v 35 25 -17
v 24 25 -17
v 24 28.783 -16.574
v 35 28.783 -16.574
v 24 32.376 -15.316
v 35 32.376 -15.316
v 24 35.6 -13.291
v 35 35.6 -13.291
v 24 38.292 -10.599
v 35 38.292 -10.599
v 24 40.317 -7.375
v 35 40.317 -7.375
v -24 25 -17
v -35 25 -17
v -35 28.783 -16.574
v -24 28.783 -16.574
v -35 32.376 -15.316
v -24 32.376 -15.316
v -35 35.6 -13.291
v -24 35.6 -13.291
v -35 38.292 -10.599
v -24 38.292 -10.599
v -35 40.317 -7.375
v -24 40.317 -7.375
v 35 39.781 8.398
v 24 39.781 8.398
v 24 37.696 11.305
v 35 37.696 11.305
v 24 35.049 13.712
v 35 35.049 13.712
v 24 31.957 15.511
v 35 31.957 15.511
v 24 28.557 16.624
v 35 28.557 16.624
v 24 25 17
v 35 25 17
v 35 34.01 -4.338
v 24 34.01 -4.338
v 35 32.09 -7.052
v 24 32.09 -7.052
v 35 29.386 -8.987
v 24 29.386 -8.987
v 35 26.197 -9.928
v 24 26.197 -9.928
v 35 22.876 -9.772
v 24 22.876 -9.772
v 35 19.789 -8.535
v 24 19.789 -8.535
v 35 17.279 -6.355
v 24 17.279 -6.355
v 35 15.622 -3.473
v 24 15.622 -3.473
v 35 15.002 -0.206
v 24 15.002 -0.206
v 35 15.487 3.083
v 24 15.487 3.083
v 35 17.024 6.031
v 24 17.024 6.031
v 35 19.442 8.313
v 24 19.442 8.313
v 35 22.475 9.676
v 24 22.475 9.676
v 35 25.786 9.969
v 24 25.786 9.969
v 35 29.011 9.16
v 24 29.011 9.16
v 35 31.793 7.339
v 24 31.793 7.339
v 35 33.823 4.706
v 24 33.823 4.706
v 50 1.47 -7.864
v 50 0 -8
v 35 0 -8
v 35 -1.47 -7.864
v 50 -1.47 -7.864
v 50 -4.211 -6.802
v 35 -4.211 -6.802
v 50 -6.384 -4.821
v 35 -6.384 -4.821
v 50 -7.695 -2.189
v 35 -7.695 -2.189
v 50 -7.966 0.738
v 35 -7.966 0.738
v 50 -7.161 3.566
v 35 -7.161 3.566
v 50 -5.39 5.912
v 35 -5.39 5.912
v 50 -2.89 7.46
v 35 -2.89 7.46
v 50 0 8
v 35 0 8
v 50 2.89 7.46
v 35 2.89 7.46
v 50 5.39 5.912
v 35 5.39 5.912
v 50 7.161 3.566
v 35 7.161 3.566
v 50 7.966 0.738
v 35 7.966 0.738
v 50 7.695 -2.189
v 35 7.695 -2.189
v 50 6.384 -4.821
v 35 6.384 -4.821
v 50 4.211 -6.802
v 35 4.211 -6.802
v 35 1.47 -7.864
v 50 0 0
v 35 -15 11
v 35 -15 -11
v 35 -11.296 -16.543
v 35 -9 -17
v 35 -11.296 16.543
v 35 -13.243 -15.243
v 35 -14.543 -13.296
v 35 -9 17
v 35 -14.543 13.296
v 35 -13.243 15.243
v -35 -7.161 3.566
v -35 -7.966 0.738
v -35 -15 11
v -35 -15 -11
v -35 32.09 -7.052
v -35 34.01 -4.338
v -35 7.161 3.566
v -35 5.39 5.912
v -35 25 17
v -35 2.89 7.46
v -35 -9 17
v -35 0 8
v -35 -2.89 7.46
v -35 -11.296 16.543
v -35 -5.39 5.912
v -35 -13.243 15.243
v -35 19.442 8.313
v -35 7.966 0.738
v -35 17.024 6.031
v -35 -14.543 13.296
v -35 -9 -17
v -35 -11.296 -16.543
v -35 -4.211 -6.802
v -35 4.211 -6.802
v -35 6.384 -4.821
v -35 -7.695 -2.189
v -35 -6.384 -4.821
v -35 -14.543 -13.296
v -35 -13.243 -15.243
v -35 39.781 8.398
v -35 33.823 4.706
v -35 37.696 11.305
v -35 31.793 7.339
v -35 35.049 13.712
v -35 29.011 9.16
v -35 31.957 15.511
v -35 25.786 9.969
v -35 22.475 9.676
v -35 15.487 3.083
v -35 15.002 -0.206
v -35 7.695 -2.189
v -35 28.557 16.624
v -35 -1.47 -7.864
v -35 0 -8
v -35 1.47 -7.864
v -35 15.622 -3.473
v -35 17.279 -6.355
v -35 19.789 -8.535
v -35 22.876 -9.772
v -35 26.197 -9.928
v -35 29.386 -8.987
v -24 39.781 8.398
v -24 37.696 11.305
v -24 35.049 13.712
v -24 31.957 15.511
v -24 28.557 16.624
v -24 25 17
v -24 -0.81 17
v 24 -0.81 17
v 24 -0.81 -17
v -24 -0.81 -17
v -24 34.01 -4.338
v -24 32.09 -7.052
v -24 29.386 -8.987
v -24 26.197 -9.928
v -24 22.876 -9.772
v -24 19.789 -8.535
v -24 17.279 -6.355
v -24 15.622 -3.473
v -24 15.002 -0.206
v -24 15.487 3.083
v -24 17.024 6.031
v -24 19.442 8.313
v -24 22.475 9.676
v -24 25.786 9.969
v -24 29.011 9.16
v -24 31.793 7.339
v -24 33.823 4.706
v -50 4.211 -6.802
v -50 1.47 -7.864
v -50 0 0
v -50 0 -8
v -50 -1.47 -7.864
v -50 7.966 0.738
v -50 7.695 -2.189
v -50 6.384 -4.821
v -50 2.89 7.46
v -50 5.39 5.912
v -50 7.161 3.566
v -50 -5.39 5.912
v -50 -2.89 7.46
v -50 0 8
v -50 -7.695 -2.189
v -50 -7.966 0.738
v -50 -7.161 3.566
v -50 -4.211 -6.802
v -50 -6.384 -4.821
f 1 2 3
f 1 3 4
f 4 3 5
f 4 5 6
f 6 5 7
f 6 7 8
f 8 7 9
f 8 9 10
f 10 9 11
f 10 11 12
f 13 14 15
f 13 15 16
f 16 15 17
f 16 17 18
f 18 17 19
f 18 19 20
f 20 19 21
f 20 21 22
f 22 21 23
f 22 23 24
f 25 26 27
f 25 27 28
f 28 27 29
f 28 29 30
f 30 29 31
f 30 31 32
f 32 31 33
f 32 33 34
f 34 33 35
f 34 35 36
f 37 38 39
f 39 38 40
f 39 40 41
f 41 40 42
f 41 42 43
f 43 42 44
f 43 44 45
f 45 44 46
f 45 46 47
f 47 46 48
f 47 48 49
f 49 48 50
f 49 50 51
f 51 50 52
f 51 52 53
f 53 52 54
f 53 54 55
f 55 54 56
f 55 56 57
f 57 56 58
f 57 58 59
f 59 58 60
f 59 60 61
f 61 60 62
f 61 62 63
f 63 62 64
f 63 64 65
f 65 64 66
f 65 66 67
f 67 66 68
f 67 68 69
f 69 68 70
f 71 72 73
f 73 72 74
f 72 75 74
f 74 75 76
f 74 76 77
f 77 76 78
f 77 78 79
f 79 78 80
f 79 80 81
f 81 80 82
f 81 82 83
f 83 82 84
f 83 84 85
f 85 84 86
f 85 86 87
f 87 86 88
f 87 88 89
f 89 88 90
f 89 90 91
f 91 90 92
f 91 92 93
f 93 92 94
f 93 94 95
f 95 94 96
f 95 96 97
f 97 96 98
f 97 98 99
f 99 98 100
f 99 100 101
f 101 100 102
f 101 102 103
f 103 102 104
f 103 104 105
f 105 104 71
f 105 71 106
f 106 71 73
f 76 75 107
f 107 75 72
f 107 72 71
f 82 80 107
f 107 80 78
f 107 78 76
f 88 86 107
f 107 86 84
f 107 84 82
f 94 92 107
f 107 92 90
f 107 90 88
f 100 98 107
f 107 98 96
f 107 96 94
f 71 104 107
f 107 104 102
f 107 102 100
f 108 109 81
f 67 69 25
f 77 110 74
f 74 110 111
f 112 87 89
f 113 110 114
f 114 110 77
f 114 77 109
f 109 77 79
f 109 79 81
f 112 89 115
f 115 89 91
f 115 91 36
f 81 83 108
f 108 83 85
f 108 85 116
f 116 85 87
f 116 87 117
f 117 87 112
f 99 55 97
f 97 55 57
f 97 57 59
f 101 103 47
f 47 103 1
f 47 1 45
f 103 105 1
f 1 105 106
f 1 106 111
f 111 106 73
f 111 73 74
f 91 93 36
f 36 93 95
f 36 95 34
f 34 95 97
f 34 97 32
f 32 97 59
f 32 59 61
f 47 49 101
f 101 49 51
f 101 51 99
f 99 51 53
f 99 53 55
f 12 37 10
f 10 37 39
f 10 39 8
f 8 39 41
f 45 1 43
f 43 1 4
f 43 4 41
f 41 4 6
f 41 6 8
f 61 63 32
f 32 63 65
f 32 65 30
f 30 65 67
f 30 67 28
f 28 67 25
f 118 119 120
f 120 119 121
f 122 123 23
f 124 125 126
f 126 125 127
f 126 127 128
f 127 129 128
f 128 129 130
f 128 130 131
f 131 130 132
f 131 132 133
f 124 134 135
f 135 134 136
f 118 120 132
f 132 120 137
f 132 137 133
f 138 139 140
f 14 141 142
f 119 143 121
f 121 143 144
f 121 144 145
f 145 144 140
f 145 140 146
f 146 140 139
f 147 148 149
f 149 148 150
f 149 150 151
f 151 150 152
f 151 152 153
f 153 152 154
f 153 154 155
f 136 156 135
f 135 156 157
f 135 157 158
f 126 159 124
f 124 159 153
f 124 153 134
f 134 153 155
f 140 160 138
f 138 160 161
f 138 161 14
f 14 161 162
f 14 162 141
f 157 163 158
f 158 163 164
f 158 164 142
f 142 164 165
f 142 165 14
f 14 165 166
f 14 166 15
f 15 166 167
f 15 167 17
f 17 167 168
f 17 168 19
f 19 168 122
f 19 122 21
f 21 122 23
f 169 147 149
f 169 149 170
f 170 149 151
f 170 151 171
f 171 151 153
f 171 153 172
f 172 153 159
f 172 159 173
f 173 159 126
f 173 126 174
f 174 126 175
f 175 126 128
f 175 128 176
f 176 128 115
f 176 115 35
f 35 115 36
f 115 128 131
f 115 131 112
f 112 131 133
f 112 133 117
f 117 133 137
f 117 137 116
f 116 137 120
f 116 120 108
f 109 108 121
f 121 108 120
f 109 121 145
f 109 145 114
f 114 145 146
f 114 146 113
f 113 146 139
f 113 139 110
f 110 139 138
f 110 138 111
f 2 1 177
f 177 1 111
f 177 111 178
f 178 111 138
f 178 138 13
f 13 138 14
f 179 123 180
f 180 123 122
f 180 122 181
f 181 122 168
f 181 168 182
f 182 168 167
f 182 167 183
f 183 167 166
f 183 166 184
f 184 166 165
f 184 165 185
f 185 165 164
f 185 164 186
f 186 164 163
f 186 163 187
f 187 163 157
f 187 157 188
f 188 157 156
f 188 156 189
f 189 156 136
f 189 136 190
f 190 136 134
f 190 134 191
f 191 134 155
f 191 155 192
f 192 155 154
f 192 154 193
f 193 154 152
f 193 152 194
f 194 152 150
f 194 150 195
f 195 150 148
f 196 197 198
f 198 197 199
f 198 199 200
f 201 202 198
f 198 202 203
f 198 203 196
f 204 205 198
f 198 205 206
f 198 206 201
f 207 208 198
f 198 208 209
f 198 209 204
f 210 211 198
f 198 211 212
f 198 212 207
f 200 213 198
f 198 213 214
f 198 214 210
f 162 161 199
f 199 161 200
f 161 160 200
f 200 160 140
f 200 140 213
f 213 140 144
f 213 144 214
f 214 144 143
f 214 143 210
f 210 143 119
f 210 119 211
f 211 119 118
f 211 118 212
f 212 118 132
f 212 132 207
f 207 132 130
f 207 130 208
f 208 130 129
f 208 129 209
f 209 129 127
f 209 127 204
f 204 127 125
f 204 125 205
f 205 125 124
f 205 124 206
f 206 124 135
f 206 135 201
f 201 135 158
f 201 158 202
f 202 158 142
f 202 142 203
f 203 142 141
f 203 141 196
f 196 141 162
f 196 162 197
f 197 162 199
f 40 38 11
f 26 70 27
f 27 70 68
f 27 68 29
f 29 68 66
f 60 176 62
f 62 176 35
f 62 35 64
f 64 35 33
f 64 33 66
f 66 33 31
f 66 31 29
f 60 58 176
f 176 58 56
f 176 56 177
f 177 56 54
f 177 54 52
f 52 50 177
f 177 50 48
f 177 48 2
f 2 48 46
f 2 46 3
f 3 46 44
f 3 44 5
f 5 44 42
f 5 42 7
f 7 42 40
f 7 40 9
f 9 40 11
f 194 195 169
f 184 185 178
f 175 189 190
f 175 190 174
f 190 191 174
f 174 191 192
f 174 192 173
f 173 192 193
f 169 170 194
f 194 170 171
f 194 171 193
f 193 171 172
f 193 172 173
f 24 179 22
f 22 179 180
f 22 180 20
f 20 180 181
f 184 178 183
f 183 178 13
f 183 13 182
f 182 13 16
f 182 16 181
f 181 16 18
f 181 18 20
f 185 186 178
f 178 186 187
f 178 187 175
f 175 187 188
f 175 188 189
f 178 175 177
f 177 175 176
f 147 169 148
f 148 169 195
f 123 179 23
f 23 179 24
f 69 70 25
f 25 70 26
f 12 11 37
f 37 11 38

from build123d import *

# Parameters (mm, degrees)
SKETCH1_R               = 8
BOSS_EXTRUDE1_DEPTH     = 50
SKETCH2_R               = 10
BOSS_EXTRUDE2_DEPTH     = 35
CUT_EXTRUDE1_DEPTH      = 68.475921631
CUT_EXTRUDE1_DEPTH_BACK = 68.475921631
SKETCH3_W               = 48
SKETCH3_H               = 42.81
CUT_EXTRUDE2_REACH      = 98.322


with BuildPart() as part:
    # Sketch1 → Boss-Extrude1 (new, symmetric)
    with BuildSketch(Plane(origin=(0, 0, 0), x_dir=(0, 0, -1), z_dir=(1, 0, 0))):
        Circle(SKETCH1_R)
    extrude(amount=BOSS_EXTRUDE1_DEPTH, both=True)

    # Sketch2 → Boss-Extrude2 (add, symmetric)
    with BuildSketch(Plane(origin=(0, 0, 0), x_dir=(0, 0, -1), z_dir=(1, 0, 0))):
        with BuildLine():
            Line((-11, -15), (11, -15))
            ThreePointArc((11, -15), (15.242640687, -13.242640687), (17, -9))
            Line((17, -9), (17, 25))
            ThreePointArc((17, 25), (0, 42), (-17, 25))
            Line((-17, 25), (-17, -9))
            ThreePointArc((-17, -9), (-15.242640687, -13.242640687), (-11, -15))
        make_face()
        with Locations((0, 25)):
            Circle(SKETCH2_R, mode=Mode.SUBTRACT)
    extrude(amount=BOSS_EXTRUDE2_DEPTH, both=True)

    # Sketch3 → Cut-Extrude1 (cut, two sides: drawn at the far end of the back side and taken through both)
    with BuildSketch(Plane.XY.offset(-CUT_EXTRUDE1_DEPTH_BACK)):
        with Locations((0, 20.595)):
            Rectangle(SKETCH3_W, SKETCH3_H)
    extrude(amount=CUT_EXTRUDE1_DEPTH + CUT_EXTRUDE1_DEPTH_BACK, mode=Mode.SUBTRACT)

    # Cut-Extrude2: up to this face of the body (flat: up to its plane)
    cut_extrude2_end = Plane(part.part.faces().sort_by_distance((-35, 10.739149223, 0))[0])
    # Sketch4 → Cut-Extrude2 (cut, up to the picked face)
    with BuildSketch(Plane(origin=(35, 0, 0), x_dir=(0, 0, -1), z_dir=(1, 0, 0)), mode=Mode.PRIVATE) as cut_extrude2_sk1:
        with BuildLine():
            Line((-8.398206087, 39.78073525), (-4.706155375, 33.823383795))
            ThreePointArc((-4.706155375, 33.823383795), (-0.206218371, 34.997873473), (4.338321313, 34.009937191))
            Line((4.338321313, 34.009937191), (7.375146233, 40.316893224))
            ThreePointArc((7.375146233, 40.316893224), (-0.577519878, 41.990187485), (-8.398206087, 39.78073525))
        make_face()
    cut_extrude2_tool1 = split(extrude(cut_extrude2_sk1.sketch, amount=-CUT_EXTRUDE2_REACH, mode=Mode.PRIVATE), bisect_by=cut_extrude2_end, keep=Keep.BOTH, mode=Mode.PRIVATE)
    add(cut_extrude2_tool1.solids().sort_by(Axis((35, 38.290838, 0.393307), (-1, 0, 0)))[0], mode=Mode.SUBTRACT)


solid = part.part
